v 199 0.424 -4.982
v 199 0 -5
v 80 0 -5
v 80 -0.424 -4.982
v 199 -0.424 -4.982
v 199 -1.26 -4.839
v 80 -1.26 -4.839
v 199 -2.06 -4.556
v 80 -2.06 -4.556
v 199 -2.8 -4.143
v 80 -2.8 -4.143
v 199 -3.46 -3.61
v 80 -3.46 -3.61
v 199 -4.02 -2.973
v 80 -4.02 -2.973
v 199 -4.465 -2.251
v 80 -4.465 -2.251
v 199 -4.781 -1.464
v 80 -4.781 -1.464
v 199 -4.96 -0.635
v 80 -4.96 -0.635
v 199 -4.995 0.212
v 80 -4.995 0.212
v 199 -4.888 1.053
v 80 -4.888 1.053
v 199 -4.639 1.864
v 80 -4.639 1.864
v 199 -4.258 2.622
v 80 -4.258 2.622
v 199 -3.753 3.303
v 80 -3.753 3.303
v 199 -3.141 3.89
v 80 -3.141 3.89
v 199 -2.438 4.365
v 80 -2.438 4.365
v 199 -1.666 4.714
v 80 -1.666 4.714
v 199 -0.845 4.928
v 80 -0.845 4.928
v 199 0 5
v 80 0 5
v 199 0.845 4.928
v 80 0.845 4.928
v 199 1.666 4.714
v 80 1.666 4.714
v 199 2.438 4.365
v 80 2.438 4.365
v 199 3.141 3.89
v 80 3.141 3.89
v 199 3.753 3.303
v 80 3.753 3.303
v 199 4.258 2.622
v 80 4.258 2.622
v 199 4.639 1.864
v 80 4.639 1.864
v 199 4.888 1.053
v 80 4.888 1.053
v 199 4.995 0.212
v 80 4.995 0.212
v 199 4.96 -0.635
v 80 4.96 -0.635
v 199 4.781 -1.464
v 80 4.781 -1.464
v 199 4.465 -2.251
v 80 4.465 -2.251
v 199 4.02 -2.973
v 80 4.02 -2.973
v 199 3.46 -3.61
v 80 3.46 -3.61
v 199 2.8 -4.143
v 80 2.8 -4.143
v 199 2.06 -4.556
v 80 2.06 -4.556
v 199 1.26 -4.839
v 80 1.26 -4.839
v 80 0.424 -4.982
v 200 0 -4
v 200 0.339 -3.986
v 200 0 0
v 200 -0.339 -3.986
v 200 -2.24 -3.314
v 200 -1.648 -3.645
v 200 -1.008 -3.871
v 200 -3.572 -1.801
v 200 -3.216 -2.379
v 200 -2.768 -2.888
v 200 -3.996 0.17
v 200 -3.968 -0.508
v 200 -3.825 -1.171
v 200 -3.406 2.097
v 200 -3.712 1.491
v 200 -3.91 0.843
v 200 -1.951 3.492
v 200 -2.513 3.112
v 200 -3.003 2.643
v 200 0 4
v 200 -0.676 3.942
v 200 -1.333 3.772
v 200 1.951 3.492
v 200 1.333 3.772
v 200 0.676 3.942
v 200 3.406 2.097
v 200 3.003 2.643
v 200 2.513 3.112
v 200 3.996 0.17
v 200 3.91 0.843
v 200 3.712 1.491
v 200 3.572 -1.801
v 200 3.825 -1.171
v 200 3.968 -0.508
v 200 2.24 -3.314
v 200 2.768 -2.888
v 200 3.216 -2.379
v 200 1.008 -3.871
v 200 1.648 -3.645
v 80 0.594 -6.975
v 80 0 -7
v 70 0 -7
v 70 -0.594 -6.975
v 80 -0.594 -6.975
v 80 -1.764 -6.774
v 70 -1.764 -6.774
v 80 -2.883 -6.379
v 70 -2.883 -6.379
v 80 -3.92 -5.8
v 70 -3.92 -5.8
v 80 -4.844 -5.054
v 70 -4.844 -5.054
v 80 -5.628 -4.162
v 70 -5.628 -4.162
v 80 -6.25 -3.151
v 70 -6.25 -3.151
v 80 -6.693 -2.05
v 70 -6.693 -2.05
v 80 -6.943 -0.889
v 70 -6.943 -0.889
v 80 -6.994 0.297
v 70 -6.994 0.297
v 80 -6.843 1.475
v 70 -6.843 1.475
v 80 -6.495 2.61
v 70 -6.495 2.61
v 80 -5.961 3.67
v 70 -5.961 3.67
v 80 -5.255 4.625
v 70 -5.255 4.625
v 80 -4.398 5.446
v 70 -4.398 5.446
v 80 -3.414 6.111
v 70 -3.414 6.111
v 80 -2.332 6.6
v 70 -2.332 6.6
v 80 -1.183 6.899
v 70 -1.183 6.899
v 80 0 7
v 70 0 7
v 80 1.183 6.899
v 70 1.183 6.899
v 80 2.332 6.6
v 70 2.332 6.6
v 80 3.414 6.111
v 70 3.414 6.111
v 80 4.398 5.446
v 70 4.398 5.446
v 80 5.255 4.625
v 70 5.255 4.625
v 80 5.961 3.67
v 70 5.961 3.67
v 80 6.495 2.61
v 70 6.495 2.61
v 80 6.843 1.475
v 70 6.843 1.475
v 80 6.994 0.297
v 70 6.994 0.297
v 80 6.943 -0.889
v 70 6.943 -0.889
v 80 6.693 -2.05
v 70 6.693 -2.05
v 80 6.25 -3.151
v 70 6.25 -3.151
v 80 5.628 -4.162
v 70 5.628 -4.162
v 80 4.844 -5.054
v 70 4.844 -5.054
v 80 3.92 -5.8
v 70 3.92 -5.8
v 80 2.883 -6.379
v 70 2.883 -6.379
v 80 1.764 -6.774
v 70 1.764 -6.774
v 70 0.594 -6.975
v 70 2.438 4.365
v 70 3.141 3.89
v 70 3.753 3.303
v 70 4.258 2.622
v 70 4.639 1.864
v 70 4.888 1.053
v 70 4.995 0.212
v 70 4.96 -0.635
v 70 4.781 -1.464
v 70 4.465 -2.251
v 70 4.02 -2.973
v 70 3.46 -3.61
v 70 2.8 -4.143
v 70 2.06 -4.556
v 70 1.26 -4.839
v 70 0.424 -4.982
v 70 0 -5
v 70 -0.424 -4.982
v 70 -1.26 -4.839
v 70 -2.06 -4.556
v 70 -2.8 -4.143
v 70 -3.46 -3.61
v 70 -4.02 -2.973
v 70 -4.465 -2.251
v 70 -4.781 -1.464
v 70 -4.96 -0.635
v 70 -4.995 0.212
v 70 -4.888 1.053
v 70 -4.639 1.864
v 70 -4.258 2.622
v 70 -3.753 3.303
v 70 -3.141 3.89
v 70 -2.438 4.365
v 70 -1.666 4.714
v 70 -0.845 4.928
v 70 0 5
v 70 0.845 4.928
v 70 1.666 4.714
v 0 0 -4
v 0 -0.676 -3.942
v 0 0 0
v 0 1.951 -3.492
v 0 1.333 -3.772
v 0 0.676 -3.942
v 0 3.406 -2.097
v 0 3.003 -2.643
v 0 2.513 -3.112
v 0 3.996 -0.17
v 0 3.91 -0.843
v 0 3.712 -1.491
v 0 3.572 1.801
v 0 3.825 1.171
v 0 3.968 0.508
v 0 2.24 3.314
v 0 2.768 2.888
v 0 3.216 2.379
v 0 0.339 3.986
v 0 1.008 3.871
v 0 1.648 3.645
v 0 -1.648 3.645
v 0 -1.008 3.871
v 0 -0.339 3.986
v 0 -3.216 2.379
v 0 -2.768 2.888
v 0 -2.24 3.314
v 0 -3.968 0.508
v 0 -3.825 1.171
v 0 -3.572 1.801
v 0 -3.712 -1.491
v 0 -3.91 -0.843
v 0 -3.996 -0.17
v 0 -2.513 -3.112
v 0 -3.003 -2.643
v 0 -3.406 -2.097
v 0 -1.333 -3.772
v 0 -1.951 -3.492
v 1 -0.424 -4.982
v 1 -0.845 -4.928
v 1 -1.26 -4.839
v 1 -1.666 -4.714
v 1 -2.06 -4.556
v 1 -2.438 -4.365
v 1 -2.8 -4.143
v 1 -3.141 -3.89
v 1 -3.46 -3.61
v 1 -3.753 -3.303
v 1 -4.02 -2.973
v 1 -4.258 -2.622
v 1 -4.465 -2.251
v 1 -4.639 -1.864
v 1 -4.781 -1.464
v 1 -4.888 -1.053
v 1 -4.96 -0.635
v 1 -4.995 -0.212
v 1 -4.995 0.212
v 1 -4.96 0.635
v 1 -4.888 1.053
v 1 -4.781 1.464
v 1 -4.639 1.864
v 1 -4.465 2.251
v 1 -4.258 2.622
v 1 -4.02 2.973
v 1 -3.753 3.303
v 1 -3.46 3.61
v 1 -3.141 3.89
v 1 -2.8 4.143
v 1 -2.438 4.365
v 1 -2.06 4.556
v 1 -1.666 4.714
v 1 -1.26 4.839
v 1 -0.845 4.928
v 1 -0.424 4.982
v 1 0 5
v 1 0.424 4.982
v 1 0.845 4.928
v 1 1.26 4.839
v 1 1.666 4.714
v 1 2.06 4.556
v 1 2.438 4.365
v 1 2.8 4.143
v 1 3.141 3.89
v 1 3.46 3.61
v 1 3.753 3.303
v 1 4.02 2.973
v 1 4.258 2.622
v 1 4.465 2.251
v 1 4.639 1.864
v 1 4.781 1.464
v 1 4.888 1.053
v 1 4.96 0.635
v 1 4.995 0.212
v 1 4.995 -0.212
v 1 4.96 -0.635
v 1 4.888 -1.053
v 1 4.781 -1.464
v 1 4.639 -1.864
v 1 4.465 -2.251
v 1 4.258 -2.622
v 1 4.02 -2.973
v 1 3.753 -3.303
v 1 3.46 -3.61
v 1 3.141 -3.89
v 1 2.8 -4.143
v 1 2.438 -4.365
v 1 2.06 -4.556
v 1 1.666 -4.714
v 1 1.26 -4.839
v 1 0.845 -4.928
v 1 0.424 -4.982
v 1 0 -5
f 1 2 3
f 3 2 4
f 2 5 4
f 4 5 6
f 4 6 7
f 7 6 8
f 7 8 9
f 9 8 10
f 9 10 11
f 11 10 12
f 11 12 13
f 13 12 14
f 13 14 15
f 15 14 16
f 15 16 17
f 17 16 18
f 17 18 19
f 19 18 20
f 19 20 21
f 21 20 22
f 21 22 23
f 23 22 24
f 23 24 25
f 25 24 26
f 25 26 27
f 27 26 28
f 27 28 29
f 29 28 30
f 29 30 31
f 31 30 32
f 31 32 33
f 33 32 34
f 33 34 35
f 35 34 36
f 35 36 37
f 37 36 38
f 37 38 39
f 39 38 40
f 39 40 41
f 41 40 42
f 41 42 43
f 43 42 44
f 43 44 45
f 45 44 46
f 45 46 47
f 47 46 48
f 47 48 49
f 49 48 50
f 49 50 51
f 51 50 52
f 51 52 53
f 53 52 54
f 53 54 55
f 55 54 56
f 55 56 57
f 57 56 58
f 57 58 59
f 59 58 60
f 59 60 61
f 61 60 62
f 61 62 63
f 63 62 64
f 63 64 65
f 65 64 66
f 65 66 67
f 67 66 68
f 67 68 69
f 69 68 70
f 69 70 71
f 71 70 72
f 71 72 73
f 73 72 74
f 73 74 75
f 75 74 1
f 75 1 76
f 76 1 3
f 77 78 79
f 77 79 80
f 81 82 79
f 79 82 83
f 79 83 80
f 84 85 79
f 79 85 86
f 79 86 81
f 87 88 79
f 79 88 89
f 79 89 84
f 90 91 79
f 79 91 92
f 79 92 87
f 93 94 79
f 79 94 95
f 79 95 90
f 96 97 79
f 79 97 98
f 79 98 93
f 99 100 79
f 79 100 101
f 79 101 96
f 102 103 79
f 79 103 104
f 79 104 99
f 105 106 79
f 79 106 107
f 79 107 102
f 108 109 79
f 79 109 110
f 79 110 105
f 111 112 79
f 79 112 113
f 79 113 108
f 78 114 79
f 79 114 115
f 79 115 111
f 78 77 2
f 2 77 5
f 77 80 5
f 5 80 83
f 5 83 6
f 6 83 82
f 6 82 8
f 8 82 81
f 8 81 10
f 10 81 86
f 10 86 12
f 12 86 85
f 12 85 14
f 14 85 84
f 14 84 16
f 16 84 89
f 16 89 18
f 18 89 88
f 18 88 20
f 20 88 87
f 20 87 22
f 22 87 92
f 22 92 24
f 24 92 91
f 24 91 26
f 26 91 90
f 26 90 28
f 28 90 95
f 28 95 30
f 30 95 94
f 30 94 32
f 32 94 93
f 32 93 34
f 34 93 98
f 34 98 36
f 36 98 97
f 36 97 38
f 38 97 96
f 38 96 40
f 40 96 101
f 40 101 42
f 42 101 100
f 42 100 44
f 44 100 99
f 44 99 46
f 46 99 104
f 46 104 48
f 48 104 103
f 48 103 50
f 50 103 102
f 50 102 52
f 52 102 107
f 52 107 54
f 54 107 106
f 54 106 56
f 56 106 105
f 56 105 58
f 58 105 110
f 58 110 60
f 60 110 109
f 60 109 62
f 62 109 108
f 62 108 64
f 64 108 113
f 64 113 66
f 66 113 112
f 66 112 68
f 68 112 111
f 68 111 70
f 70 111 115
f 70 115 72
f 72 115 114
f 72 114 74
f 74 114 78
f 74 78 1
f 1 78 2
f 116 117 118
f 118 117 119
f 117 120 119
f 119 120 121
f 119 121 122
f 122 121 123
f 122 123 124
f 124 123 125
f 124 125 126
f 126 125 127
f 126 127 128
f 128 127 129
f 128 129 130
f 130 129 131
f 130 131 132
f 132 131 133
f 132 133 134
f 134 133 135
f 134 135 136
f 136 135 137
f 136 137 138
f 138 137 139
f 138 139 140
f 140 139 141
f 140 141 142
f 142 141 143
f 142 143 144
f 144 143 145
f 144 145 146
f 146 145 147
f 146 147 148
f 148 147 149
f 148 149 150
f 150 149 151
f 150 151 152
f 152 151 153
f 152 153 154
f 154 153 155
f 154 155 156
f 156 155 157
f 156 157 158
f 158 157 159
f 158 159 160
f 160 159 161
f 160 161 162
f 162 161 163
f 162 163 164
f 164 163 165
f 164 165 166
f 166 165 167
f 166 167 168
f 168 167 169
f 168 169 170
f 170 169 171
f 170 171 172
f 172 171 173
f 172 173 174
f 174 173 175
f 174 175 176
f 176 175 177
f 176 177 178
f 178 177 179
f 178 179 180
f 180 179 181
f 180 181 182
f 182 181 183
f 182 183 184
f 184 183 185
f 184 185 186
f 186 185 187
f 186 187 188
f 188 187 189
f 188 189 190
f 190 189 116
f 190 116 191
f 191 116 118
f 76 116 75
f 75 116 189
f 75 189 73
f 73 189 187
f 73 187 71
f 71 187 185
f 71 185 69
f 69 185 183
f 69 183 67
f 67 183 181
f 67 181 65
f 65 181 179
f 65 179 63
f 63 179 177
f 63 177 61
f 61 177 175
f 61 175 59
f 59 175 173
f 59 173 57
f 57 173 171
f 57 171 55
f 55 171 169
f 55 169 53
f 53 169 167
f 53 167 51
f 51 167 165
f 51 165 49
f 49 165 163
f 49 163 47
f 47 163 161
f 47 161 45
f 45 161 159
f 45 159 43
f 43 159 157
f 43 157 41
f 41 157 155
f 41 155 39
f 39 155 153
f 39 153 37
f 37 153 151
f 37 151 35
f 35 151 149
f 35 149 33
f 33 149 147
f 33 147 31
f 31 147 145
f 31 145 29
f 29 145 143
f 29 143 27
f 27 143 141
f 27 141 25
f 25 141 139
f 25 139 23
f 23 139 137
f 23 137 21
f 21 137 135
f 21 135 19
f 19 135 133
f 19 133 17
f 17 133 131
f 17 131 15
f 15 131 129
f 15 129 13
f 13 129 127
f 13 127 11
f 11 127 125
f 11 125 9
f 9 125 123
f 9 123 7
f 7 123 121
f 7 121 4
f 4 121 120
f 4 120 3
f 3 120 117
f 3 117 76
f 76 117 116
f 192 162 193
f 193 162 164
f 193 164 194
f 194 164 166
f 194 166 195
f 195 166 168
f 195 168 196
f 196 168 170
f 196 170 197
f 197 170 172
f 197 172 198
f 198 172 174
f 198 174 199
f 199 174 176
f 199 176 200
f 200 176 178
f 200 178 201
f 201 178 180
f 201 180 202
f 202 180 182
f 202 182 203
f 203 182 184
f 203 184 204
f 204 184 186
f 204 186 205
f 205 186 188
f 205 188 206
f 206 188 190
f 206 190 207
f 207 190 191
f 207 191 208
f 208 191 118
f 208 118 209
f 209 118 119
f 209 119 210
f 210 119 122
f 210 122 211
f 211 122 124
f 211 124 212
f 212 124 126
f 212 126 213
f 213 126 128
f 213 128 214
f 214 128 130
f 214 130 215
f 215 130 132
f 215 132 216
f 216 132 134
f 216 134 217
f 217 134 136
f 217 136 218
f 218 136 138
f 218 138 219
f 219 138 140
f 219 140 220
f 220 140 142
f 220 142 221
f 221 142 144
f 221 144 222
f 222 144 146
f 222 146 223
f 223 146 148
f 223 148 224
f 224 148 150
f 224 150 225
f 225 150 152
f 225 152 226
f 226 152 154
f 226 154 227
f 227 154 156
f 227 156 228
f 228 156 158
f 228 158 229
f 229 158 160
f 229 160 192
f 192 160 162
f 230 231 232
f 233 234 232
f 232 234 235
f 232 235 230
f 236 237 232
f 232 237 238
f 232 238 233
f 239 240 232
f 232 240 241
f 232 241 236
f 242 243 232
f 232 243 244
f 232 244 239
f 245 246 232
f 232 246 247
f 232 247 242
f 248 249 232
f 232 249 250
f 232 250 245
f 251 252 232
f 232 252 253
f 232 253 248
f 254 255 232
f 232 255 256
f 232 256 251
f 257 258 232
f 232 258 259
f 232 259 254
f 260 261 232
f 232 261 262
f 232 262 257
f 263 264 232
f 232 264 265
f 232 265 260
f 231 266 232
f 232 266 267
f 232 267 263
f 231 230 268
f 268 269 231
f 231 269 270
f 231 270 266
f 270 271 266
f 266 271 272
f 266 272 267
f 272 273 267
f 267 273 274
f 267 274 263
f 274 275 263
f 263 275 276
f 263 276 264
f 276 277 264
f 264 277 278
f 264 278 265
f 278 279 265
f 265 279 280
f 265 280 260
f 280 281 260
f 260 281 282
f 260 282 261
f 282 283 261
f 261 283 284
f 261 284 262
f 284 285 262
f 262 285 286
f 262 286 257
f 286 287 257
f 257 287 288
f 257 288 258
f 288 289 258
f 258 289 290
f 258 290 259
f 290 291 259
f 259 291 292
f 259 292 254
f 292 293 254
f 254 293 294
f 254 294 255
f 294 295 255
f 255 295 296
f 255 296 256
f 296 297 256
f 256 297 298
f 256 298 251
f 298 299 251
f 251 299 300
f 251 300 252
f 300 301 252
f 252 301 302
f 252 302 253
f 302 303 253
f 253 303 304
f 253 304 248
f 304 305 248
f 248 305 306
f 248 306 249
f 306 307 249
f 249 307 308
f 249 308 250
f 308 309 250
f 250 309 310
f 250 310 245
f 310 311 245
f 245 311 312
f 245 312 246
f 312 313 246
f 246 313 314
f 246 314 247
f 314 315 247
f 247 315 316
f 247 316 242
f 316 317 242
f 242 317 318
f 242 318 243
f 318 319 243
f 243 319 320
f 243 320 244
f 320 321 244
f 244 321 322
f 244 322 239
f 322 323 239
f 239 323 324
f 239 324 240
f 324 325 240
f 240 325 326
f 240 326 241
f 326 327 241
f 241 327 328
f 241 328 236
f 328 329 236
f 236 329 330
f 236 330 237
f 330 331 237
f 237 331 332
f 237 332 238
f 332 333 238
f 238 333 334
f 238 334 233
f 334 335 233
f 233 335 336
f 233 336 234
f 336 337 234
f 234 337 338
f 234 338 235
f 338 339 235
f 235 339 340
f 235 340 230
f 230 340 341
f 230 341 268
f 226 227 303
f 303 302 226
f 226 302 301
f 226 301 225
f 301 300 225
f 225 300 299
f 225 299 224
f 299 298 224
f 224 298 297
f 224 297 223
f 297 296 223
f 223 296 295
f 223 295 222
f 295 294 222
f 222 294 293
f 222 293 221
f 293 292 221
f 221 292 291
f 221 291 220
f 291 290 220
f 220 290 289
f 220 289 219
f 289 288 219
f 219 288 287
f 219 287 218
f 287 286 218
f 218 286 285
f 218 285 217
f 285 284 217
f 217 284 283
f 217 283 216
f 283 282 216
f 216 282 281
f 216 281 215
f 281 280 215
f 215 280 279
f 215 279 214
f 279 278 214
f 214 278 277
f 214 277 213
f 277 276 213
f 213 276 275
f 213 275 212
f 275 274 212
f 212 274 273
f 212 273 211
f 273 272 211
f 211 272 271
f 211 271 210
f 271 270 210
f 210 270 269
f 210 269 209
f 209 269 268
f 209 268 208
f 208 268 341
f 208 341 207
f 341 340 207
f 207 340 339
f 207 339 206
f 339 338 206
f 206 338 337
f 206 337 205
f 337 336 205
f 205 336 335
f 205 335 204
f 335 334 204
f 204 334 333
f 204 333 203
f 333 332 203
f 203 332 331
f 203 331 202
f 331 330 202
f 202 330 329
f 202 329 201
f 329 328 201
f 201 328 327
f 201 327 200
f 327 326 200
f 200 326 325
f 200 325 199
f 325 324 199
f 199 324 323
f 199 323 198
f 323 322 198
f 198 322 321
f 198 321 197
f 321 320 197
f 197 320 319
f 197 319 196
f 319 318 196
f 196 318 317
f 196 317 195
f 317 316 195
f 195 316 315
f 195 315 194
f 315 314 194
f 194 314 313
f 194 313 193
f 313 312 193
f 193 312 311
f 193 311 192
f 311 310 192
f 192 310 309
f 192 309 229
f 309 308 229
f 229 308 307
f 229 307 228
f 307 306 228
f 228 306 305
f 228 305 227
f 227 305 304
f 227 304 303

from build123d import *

# Parameters (mm, degrees)
SKETCH1_R           = 5
BOSS_EXTRUDE1_DEPTH = 200
CHAMFER1_SIZE       = 1
BOSS_EXTRUDE3_START = 70
SKETCH2_R           = 7
BOSS_EXTRUDE3_DEPTH = 10


with BuildPart() as part:
    # Sketch1 → Boss-Extrude1 (new body)
    with BuildSketch(Plane(origin=(0, 0, 0), x_dir=(0, 0, -1), z_dir=(1, 0, 0))):
        Circle(SKETCH1_R)
    extrude(amount=BOSS_EXTRUDE1_DEPTH)

    # Chamfer1
    chamfer1_edges = [part.edges().sort_by_distance(p)[0] for p in [
        (0, 0, 5),
        (200, 0, 5),
    ]]
    chamfer(chamfer1_edges, length=CHAMFER1_SIZE)

    # Sketch2 → Boss-Extrude3 (add)
    with BuildSketch(Plane(origin=(0, 0, 0), x_dir=(0, 0, -1), z_dir=(1, 0, 0)).offset(BOSS_EXTRUDE3_START)):
        Circle(SKETCH2_R)
    extrude(amount=BOSS_EXTRUDE3_DEPTH)


solid = part.part
